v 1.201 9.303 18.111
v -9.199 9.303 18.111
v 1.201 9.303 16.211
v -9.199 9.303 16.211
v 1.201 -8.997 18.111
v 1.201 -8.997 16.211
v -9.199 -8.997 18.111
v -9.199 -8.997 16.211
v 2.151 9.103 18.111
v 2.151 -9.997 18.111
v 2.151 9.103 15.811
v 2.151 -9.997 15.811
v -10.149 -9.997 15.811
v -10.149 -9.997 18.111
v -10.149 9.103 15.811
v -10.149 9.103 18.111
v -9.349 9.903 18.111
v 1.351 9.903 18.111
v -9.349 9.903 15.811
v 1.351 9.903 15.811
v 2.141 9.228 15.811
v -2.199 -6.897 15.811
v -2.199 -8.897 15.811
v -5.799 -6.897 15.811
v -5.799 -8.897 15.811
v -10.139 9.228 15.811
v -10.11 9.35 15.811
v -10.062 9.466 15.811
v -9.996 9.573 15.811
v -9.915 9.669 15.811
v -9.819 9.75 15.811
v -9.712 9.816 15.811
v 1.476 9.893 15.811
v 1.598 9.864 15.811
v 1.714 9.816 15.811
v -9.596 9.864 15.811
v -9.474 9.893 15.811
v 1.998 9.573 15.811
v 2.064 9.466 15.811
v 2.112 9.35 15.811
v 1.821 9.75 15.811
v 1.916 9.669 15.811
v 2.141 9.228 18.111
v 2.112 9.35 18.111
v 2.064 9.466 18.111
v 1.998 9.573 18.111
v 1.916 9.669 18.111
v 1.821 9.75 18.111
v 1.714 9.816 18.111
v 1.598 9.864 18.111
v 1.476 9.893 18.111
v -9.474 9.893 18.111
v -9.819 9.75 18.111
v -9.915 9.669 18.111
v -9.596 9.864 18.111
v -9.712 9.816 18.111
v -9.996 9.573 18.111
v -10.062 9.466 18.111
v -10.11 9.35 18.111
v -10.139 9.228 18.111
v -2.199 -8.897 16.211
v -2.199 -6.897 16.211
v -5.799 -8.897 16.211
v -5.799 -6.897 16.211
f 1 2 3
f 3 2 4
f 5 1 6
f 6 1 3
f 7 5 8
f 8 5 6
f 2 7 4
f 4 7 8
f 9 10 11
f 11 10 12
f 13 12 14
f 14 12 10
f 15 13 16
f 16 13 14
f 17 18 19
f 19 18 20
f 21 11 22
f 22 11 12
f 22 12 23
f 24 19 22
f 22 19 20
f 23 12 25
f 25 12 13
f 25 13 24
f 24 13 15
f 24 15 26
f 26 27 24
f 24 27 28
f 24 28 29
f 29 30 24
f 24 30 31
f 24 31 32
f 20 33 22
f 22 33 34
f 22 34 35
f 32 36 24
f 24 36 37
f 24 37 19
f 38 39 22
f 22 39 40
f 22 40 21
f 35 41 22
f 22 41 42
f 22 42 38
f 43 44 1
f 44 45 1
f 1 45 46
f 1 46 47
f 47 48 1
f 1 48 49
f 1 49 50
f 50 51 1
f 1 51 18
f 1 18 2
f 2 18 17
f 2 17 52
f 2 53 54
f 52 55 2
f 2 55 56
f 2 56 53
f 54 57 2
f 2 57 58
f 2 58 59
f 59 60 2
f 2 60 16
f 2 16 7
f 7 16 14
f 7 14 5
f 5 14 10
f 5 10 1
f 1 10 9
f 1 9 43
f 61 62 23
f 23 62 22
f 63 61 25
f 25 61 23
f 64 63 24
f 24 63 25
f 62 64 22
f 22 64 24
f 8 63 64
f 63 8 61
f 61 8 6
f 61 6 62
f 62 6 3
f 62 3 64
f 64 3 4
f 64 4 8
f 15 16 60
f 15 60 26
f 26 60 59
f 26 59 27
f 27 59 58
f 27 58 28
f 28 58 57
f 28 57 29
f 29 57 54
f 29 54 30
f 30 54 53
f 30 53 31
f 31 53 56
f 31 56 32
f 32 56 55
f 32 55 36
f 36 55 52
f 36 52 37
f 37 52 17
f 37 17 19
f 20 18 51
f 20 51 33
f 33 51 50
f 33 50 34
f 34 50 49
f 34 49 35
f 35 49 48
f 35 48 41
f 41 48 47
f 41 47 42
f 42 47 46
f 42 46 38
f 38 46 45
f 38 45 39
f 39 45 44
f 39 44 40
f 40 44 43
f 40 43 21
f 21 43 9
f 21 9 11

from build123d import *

# Parameters (mm, degrees)
ESQUISSE1_W        = 12.3
ESQUISSE1_H        = 19.9
ESQUISSE1_W_2      = 10.4
ESQUISSE1_H_2      = 18.3
BOSS_EXTRU_1_DEPTH = 2.3
ESQUISSE2_W        = 10.4
ESQUISSE2_H        = 18.3
ESQUISSE2_W_2      = 3.6
ESQUISSE2_H_2      = 2
BOSS_EXTRU_2_DEPTH = 0.4
CONG_1_R           = 0.8


with BuildPart() as part:
    # Esquisse1 → Boss.-Extru.1 (new body)
    with BuildSketch(Plane.XY.offset(18.1106)):
        with Locations((-3.99919357, -0.046839395)):
            Rectangle(ESQUISSE1_W, ESQUISSE1_H)
        with Locations((-3.99919357, 0.153160605)):
            Rectangle(ESQUISSE1_W_2, ESQUISSE1_H_2, mode=Mode.SUBTRACT)
    extrude(amount=-BOSS_EXTRU_1_DEPTH)

    # Esquisse2 → Boss.-Extru.2 (add)
    with BuildSketch(Plane(origin=(0, 0, 15.8106), x_dir=(-1, 0, 0), z_dir=(0, 0, -1))):
        with Locations((3.99919357, 0.153160605)):
            Rectangle(ESQUISSE2_W, ESQUISSE2_H)
        with Locations((3.99919357, -7.896839395)):
            Rectangle(ESQUISSE2_W_2, ESQUISSE2_H_2, mode=Mode.SUBTRACT)
    extrude(amount=-BOSS_EXTRU_2_DEPTH)

    # Congé1
    cong_1_edges = [part.edges().sort_by_distance(p)[0] for p in [
        (-10.14919357, 9.903160605, 16.9606),
        (2.15080643, 9.903160605, 16.9606),
    ]]
    fillet(cong_1_edges, radius=CONG_1_R)


solid = part.part
